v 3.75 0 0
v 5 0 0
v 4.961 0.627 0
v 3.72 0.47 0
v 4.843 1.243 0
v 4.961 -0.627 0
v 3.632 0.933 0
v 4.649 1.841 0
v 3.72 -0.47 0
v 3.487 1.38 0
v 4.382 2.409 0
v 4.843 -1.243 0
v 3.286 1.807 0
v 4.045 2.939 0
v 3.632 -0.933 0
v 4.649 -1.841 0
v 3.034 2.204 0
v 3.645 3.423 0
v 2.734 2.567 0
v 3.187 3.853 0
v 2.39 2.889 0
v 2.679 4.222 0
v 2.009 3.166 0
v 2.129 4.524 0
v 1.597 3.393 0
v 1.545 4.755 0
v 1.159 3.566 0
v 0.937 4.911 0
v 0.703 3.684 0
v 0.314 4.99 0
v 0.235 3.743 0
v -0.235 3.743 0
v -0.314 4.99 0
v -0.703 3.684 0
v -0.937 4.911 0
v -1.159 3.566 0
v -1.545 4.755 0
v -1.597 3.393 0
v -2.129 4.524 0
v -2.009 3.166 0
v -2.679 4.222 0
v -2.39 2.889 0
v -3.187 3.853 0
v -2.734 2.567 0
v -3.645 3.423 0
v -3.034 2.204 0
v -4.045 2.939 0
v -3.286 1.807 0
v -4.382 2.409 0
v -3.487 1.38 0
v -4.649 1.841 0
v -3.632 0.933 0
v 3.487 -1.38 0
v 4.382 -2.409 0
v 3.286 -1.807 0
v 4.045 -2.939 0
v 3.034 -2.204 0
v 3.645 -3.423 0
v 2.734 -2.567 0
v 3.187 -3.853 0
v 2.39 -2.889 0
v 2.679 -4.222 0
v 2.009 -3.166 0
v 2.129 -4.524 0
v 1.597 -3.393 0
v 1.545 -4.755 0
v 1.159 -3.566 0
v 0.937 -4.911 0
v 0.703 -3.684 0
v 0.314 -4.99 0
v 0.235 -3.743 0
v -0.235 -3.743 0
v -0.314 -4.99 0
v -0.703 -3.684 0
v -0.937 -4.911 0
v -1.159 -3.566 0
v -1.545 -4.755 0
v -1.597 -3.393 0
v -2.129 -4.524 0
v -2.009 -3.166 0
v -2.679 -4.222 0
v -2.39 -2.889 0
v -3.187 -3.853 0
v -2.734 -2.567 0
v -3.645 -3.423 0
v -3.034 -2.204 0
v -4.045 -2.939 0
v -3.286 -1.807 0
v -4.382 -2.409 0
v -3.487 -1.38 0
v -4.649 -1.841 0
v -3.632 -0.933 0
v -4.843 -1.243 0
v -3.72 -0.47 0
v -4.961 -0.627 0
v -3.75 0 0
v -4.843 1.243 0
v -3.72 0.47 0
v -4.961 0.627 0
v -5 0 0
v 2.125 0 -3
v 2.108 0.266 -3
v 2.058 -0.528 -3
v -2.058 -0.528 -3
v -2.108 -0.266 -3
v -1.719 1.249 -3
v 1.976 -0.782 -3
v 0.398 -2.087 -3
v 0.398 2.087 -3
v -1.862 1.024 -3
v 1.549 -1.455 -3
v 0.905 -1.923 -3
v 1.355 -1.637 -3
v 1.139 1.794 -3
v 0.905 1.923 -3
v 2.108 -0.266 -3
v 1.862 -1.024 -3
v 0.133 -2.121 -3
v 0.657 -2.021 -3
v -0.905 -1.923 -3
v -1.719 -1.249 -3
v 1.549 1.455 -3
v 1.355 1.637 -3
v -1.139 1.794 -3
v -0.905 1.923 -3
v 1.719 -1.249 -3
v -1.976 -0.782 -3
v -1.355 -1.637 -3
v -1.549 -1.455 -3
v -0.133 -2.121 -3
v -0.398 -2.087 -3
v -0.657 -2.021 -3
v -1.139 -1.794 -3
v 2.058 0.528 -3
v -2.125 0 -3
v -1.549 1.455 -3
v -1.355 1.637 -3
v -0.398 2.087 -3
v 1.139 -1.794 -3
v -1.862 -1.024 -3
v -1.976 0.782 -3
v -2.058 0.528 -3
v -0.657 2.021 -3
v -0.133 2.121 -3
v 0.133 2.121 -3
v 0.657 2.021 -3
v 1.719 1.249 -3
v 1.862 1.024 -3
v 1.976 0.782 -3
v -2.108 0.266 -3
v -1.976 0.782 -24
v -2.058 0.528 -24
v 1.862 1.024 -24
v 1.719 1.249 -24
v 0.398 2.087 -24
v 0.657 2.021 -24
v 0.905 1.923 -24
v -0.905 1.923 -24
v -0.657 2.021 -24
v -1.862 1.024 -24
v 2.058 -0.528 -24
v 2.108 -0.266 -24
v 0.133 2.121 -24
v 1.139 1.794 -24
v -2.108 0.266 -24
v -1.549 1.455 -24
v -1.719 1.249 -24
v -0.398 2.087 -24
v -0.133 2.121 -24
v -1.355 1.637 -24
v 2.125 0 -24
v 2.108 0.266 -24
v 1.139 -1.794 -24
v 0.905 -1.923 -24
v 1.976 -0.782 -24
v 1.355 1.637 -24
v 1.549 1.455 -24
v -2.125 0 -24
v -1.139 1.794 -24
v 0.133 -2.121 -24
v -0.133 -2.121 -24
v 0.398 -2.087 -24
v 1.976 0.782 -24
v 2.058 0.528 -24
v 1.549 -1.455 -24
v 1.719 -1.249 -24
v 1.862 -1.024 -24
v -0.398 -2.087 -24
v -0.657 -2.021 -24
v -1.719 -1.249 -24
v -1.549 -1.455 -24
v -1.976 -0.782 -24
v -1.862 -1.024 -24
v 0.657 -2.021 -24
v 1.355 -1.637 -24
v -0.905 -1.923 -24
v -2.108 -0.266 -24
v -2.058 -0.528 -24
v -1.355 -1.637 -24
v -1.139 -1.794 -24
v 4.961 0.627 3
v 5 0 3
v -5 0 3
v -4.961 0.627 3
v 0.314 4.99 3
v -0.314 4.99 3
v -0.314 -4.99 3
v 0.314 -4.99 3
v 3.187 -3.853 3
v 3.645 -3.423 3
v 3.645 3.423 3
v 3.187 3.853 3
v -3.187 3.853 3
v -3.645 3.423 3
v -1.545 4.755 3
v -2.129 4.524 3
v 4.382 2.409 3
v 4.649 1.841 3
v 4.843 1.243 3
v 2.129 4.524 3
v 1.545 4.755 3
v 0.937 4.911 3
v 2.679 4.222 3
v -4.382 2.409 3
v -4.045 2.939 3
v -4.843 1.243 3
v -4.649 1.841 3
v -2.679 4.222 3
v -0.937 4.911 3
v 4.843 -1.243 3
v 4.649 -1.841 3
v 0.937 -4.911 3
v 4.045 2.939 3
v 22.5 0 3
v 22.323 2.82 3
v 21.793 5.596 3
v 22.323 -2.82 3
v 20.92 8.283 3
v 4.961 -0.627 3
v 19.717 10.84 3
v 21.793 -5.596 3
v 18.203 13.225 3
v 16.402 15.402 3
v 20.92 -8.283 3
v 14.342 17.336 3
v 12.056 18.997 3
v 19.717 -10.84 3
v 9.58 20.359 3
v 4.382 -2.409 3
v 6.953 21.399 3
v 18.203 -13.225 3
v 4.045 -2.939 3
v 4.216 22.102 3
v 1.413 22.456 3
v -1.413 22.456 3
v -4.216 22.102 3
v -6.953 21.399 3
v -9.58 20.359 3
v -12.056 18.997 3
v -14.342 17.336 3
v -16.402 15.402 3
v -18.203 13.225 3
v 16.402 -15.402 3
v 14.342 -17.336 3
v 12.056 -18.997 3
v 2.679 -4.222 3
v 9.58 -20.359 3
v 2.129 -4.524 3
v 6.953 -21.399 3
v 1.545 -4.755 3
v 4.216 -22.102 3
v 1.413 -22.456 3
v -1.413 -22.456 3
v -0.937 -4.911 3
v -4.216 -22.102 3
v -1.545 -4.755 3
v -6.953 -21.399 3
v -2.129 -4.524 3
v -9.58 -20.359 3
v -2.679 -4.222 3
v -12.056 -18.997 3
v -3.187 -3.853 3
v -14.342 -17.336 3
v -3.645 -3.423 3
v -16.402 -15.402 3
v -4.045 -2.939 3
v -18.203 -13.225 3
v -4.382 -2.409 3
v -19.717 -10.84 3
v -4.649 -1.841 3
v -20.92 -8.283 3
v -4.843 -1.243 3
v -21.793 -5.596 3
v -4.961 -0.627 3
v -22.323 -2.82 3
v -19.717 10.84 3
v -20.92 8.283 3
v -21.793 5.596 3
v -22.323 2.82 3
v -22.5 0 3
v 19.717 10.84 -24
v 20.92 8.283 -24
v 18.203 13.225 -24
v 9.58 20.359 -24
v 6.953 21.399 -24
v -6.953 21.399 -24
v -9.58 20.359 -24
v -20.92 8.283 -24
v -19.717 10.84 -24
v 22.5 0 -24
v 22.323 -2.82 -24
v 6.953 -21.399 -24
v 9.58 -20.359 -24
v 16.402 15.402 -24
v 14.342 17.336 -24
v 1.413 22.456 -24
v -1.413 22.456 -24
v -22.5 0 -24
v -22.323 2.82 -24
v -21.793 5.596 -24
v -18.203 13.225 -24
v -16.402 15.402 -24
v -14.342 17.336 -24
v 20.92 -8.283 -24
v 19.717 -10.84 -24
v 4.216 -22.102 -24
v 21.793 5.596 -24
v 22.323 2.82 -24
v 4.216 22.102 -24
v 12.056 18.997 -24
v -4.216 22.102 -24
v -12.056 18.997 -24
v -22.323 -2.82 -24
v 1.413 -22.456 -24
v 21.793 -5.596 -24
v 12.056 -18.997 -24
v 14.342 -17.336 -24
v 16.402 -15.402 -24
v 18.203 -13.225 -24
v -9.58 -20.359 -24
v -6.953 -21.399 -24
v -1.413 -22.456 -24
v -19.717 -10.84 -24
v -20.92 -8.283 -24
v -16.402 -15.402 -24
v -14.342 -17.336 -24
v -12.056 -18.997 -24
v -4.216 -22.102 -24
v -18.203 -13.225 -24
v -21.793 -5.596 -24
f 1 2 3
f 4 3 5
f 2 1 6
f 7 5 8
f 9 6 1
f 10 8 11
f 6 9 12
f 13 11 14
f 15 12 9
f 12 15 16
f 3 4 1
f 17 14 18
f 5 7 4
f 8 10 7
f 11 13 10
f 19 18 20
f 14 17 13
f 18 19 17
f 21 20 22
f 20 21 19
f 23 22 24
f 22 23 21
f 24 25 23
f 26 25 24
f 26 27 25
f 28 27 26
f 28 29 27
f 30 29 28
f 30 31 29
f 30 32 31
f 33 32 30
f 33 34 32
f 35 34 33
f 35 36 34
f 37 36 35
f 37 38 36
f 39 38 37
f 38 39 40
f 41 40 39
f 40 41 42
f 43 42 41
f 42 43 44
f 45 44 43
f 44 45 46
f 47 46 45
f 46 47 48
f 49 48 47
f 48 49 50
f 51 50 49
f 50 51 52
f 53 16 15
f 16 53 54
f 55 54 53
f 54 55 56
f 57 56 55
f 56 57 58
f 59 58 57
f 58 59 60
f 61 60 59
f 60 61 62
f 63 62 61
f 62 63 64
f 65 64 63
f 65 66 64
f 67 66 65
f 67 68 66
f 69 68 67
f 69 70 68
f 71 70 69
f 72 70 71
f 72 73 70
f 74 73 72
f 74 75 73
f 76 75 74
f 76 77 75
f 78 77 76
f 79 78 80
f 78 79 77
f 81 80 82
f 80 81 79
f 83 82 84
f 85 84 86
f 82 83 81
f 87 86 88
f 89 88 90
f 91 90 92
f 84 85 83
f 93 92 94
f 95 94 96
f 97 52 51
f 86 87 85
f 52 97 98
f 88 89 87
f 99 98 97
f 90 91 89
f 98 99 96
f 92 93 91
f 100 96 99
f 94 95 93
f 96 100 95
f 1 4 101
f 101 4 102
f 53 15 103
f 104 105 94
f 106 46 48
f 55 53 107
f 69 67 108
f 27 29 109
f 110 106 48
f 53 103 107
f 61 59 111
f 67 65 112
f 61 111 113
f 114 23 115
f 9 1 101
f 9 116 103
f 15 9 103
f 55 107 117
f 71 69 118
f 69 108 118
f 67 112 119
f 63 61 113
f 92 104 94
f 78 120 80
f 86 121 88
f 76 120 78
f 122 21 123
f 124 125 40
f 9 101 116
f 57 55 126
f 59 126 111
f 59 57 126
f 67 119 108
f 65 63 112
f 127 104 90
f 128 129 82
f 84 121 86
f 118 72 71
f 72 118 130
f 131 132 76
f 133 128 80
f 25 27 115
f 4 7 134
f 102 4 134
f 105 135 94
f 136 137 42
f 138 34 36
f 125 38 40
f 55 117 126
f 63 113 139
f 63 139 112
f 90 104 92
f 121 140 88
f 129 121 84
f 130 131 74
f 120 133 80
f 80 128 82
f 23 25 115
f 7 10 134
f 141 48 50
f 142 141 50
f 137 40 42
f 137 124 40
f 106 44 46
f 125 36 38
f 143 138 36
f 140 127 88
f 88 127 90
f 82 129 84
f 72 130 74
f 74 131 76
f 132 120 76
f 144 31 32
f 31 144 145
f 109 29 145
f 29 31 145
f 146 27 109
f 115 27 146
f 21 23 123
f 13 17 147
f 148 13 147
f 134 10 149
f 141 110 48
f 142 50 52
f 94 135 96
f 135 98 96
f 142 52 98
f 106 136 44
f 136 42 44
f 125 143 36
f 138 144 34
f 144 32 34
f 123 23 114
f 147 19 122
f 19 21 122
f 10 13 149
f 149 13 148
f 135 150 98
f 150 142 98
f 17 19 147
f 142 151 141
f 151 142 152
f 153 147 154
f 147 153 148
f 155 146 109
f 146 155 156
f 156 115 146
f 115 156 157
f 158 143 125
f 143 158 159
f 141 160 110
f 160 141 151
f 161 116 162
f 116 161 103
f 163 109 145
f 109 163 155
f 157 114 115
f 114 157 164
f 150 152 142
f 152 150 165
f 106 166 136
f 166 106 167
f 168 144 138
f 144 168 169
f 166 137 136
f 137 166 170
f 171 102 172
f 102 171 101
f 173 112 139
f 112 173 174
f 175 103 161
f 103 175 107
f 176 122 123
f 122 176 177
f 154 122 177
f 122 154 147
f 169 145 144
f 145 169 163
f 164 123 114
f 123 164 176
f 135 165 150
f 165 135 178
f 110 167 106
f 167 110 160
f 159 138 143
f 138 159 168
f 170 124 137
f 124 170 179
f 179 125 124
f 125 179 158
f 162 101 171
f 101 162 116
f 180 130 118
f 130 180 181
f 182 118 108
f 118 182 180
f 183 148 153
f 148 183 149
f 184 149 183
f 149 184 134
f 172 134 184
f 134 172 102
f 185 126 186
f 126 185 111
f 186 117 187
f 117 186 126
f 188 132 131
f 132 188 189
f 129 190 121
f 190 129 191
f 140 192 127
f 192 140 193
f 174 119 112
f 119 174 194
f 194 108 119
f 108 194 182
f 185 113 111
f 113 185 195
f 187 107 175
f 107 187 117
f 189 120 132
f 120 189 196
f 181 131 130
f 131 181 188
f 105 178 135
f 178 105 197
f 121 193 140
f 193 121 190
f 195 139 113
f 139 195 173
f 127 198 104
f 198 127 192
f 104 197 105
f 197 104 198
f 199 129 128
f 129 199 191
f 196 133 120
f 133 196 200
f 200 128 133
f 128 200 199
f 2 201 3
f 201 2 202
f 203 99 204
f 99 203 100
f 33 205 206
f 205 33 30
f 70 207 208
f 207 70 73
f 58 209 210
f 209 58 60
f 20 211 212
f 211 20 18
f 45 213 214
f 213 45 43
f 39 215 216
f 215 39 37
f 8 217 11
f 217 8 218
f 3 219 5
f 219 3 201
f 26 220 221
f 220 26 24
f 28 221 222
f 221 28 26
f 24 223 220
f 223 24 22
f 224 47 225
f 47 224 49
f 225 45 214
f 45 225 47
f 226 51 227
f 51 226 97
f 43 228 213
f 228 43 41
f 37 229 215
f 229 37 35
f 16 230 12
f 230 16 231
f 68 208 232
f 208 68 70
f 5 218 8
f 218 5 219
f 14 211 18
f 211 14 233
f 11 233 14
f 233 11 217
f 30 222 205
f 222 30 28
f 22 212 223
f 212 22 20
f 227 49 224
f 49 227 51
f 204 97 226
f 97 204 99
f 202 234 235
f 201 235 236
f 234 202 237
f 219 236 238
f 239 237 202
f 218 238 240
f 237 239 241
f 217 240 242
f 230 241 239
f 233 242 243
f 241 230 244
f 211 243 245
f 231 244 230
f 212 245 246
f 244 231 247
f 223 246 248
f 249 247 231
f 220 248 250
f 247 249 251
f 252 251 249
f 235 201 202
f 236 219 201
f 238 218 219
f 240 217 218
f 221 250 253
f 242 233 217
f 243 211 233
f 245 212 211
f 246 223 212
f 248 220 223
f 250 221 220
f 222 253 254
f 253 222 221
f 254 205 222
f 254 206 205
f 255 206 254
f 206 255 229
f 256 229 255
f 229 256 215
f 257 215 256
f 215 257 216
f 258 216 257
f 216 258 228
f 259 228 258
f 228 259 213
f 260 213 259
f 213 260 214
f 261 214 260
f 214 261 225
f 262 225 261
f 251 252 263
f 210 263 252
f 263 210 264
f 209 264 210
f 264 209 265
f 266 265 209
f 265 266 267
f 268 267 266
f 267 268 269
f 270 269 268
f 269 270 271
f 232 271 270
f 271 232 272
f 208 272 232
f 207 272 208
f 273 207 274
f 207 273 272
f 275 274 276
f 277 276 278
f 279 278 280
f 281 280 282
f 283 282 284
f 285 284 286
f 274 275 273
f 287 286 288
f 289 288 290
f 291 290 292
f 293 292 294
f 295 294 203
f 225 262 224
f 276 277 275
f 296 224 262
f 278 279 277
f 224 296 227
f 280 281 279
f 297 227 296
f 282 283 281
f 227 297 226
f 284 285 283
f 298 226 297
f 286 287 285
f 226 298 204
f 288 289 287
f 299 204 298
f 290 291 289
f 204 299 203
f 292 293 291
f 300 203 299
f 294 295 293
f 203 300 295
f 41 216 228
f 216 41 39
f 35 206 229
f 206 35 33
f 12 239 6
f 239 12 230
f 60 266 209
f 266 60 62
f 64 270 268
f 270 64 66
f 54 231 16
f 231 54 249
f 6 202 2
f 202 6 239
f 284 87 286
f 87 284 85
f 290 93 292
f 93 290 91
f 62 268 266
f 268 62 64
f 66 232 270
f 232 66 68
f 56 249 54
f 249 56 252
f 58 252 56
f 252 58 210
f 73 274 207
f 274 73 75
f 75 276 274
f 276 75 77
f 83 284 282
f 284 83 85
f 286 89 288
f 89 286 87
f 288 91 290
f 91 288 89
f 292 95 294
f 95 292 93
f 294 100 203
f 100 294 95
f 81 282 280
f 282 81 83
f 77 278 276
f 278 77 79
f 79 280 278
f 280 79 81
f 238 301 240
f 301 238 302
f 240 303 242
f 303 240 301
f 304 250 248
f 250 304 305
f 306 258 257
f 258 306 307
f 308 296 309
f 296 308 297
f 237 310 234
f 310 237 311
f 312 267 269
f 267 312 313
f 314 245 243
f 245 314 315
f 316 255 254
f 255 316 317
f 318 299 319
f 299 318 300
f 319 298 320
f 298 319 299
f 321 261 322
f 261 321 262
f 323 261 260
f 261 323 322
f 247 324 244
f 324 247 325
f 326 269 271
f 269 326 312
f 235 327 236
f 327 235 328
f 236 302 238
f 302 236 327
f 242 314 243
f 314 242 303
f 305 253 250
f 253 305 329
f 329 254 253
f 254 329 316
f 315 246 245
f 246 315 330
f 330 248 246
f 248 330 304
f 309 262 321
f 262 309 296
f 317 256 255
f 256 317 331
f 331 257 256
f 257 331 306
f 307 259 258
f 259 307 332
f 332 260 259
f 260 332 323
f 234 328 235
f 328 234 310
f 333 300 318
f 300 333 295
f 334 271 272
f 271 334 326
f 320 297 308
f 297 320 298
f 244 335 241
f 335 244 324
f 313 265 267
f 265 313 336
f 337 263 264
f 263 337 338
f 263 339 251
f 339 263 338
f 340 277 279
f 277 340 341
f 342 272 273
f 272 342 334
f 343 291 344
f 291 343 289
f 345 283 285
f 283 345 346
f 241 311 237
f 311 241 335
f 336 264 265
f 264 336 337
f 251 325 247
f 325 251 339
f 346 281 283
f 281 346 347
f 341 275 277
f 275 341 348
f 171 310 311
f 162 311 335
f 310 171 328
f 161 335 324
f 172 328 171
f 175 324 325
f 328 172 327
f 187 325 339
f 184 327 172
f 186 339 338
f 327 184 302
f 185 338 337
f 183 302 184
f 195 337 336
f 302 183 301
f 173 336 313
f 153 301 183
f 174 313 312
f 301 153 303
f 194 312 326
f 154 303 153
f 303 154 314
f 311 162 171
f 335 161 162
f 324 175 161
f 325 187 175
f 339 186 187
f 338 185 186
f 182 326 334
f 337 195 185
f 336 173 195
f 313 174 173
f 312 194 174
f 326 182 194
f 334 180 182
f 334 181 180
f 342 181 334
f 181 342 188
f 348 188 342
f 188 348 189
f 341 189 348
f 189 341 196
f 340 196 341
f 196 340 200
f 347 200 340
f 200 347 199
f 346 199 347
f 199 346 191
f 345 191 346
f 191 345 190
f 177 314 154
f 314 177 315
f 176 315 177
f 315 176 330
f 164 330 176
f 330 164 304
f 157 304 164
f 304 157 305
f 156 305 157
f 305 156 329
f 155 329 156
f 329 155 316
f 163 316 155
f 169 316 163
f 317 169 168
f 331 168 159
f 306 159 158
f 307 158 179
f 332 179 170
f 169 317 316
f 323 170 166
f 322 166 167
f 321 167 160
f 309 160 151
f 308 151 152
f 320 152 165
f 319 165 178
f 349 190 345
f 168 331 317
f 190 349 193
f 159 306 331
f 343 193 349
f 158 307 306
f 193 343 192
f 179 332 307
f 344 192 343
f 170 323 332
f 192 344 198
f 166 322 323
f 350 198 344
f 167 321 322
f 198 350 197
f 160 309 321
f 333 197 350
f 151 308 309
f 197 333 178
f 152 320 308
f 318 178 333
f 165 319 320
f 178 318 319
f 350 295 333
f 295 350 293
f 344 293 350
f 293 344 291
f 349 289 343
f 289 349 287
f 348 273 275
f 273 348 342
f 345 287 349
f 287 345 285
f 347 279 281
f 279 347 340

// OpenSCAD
$fn = 50;

difference() {
	union() {
		translate(v = [0, 0, -24.0]) {
			cylinder(h = 27, r = 22.5);
		}
	}
	union() {
		translate(v = [0, 0, 0]) {
			rotate(a = [0, 0, 0]) {
				difference() {
					union() {
						translate(v = [0, 0, -27.0]) {
							cylinder(h = 27, r = 2.0);
						}
						translate(v = [0, 0, -3]) {
							cylinder(h = 3, r1 = 2.125, r2 = 3.75);
						}
						translate(v = [0, 0, -27.0]) {
							cylinder(h = 27, r = 2.125);
						}
						translate(v = [0, 0, -27.0]) {
							cylinder(h = 27, r = 2.0);
						}
					}
					union();
				}
			}
		}
		#cylinder(h = 3, r = 5.0);
	}
}
